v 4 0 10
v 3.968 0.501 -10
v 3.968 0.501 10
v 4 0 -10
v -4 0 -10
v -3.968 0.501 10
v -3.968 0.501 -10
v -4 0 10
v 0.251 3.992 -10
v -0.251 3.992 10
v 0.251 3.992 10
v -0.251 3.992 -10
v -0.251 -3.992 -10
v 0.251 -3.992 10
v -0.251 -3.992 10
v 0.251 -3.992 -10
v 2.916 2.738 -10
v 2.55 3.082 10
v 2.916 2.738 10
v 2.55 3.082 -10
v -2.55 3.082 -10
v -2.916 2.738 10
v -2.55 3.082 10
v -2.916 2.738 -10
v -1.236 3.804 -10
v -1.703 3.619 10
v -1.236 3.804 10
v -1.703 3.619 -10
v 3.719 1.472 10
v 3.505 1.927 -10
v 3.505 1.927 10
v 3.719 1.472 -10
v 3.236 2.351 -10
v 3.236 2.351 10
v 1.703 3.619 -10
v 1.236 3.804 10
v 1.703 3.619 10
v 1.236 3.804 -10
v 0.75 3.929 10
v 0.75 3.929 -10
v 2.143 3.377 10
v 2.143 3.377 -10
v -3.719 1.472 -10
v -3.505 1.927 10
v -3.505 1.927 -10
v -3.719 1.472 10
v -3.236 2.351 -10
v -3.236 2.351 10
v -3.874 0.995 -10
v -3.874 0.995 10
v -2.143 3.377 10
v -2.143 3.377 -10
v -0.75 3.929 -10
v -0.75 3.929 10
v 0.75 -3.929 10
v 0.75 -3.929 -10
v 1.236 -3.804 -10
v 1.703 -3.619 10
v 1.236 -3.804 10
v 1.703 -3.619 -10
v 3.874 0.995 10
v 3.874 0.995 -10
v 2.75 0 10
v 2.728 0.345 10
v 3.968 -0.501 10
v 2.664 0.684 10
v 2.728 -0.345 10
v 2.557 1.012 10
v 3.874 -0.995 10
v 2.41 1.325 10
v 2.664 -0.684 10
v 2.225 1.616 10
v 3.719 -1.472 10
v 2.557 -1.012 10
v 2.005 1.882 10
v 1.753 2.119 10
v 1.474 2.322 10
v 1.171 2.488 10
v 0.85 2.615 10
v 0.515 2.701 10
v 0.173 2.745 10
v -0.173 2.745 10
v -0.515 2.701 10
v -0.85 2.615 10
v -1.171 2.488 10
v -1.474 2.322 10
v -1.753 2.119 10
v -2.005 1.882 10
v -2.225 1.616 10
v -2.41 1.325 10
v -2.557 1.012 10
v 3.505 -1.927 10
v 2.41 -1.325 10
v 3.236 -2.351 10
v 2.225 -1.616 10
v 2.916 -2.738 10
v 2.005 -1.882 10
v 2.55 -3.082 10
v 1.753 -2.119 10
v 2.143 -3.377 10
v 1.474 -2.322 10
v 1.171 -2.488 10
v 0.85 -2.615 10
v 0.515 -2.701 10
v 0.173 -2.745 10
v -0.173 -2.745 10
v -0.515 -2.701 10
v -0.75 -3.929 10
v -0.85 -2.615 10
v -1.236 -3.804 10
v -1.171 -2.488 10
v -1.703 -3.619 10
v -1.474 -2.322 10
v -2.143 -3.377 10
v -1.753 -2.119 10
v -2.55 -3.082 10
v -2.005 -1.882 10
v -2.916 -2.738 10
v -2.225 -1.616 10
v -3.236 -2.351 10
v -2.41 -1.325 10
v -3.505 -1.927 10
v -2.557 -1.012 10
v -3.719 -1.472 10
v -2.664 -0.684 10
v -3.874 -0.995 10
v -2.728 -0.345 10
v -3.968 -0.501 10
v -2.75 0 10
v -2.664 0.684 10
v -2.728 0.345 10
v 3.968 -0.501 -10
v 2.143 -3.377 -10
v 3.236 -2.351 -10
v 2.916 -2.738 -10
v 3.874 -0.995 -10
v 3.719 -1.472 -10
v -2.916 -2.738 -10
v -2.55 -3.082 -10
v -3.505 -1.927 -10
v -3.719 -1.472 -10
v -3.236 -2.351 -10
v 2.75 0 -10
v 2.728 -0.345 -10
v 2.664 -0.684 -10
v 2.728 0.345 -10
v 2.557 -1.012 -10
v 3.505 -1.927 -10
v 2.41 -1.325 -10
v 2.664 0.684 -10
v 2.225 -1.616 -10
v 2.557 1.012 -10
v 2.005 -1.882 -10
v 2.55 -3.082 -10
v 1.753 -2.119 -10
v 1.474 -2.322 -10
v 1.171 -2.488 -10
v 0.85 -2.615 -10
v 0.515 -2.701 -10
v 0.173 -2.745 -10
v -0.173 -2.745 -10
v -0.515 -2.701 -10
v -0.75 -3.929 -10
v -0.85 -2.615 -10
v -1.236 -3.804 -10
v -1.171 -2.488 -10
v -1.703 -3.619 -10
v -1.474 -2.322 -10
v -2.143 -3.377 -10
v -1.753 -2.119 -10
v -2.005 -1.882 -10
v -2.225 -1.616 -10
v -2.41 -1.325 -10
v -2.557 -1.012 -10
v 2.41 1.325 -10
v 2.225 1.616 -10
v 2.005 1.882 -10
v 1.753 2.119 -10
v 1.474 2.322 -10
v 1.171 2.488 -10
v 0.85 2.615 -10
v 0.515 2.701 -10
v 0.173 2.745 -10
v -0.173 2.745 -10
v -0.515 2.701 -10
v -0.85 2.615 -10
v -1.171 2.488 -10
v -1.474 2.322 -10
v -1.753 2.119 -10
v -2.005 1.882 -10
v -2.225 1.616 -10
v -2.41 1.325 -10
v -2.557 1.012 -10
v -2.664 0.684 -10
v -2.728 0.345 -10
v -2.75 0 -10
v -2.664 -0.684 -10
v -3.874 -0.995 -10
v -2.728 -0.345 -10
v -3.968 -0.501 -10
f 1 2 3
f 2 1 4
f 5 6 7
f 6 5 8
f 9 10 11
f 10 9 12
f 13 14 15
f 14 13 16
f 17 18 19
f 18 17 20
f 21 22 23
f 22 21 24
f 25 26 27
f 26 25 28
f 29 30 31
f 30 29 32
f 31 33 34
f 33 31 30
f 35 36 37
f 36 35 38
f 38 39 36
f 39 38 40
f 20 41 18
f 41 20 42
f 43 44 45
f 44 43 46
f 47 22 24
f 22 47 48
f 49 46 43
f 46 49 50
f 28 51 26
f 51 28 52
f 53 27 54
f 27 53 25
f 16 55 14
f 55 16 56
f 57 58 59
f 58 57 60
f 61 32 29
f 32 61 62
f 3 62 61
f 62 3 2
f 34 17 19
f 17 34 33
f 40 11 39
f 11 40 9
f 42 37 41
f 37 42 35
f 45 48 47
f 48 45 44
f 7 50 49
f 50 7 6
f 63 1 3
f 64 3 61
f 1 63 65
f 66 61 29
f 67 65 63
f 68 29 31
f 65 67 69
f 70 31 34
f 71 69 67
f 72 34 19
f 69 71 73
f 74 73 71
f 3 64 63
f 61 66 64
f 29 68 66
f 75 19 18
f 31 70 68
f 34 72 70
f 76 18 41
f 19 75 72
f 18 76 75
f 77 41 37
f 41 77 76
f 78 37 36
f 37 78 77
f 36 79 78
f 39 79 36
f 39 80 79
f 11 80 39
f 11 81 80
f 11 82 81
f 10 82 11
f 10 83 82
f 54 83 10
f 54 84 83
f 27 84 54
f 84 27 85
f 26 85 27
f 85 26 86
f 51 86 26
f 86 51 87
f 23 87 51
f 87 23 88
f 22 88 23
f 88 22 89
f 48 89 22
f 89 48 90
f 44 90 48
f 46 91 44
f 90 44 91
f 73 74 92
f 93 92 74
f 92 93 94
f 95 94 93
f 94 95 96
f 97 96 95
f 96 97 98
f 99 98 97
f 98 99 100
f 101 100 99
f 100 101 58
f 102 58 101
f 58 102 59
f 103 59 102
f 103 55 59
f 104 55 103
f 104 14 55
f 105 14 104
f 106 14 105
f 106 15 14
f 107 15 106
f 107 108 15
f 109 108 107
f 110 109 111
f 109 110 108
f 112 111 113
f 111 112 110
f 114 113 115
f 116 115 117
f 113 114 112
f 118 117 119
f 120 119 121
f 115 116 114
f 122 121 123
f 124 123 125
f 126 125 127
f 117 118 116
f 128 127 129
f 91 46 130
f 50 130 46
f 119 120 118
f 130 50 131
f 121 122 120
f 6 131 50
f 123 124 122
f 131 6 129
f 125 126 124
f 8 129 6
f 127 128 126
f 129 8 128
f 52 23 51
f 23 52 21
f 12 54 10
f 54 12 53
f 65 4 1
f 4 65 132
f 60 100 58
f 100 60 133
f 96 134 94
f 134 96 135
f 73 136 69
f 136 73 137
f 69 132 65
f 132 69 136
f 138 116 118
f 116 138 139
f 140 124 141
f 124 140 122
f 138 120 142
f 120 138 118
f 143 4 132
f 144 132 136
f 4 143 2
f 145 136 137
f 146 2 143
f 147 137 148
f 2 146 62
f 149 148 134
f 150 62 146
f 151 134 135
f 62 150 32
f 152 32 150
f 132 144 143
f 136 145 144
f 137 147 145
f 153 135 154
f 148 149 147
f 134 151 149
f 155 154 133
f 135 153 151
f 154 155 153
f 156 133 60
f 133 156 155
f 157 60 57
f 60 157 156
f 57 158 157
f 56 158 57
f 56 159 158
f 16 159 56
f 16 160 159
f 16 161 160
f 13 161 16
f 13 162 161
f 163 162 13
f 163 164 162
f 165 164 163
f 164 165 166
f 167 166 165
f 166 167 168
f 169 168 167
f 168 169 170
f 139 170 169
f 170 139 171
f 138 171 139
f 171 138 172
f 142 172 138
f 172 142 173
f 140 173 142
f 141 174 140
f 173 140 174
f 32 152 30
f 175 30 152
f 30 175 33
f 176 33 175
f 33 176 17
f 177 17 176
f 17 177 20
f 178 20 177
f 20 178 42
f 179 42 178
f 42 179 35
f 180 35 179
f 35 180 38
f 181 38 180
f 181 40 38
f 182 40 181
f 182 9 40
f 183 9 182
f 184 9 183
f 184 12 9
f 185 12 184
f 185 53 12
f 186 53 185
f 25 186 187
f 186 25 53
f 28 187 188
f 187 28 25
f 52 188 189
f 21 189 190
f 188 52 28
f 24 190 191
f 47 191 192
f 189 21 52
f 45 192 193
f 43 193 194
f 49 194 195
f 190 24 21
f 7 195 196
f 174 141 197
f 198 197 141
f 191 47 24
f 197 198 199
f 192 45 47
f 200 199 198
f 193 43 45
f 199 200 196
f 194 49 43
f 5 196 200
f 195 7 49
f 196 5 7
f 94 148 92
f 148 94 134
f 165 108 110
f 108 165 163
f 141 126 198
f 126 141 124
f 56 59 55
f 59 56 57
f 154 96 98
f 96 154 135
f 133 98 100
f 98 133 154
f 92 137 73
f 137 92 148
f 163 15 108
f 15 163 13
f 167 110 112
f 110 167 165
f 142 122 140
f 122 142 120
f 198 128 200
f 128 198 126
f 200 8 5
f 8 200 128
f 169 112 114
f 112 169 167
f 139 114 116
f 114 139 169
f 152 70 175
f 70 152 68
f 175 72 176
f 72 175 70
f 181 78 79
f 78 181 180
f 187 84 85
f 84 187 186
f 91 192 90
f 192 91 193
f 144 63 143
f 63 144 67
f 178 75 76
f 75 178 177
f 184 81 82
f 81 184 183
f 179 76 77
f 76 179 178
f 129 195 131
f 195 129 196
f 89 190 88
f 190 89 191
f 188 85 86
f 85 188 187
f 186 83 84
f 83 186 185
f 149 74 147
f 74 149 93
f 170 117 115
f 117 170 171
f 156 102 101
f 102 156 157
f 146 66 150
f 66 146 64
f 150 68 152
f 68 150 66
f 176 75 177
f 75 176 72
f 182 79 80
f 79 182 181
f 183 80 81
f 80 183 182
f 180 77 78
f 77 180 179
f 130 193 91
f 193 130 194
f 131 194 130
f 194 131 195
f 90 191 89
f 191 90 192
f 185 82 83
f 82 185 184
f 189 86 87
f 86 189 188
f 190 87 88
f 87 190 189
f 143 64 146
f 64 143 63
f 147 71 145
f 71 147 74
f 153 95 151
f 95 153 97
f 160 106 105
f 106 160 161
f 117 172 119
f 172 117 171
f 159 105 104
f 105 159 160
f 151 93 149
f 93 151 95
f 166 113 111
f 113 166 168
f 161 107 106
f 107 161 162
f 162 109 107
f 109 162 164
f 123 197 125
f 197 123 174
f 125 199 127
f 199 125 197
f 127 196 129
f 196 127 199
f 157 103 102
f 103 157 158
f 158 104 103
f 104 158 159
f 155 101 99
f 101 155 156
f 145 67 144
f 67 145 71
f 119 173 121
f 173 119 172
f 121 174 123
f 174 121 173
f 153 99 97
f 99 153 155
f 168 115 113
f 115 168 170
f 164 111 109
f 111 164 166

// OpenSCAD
$fn = 50;


difference() {
	union() {
		translate(v = [0, 0, -10.0000000000]) {
			cylinder(h = 20, r = 4.0000000000);
		}
	}
	union() {
		translate(v = [0, 0, -100.0000000000]) {
			cylinder(h = 200, r = 2.7500000000);
		}
	}
}
